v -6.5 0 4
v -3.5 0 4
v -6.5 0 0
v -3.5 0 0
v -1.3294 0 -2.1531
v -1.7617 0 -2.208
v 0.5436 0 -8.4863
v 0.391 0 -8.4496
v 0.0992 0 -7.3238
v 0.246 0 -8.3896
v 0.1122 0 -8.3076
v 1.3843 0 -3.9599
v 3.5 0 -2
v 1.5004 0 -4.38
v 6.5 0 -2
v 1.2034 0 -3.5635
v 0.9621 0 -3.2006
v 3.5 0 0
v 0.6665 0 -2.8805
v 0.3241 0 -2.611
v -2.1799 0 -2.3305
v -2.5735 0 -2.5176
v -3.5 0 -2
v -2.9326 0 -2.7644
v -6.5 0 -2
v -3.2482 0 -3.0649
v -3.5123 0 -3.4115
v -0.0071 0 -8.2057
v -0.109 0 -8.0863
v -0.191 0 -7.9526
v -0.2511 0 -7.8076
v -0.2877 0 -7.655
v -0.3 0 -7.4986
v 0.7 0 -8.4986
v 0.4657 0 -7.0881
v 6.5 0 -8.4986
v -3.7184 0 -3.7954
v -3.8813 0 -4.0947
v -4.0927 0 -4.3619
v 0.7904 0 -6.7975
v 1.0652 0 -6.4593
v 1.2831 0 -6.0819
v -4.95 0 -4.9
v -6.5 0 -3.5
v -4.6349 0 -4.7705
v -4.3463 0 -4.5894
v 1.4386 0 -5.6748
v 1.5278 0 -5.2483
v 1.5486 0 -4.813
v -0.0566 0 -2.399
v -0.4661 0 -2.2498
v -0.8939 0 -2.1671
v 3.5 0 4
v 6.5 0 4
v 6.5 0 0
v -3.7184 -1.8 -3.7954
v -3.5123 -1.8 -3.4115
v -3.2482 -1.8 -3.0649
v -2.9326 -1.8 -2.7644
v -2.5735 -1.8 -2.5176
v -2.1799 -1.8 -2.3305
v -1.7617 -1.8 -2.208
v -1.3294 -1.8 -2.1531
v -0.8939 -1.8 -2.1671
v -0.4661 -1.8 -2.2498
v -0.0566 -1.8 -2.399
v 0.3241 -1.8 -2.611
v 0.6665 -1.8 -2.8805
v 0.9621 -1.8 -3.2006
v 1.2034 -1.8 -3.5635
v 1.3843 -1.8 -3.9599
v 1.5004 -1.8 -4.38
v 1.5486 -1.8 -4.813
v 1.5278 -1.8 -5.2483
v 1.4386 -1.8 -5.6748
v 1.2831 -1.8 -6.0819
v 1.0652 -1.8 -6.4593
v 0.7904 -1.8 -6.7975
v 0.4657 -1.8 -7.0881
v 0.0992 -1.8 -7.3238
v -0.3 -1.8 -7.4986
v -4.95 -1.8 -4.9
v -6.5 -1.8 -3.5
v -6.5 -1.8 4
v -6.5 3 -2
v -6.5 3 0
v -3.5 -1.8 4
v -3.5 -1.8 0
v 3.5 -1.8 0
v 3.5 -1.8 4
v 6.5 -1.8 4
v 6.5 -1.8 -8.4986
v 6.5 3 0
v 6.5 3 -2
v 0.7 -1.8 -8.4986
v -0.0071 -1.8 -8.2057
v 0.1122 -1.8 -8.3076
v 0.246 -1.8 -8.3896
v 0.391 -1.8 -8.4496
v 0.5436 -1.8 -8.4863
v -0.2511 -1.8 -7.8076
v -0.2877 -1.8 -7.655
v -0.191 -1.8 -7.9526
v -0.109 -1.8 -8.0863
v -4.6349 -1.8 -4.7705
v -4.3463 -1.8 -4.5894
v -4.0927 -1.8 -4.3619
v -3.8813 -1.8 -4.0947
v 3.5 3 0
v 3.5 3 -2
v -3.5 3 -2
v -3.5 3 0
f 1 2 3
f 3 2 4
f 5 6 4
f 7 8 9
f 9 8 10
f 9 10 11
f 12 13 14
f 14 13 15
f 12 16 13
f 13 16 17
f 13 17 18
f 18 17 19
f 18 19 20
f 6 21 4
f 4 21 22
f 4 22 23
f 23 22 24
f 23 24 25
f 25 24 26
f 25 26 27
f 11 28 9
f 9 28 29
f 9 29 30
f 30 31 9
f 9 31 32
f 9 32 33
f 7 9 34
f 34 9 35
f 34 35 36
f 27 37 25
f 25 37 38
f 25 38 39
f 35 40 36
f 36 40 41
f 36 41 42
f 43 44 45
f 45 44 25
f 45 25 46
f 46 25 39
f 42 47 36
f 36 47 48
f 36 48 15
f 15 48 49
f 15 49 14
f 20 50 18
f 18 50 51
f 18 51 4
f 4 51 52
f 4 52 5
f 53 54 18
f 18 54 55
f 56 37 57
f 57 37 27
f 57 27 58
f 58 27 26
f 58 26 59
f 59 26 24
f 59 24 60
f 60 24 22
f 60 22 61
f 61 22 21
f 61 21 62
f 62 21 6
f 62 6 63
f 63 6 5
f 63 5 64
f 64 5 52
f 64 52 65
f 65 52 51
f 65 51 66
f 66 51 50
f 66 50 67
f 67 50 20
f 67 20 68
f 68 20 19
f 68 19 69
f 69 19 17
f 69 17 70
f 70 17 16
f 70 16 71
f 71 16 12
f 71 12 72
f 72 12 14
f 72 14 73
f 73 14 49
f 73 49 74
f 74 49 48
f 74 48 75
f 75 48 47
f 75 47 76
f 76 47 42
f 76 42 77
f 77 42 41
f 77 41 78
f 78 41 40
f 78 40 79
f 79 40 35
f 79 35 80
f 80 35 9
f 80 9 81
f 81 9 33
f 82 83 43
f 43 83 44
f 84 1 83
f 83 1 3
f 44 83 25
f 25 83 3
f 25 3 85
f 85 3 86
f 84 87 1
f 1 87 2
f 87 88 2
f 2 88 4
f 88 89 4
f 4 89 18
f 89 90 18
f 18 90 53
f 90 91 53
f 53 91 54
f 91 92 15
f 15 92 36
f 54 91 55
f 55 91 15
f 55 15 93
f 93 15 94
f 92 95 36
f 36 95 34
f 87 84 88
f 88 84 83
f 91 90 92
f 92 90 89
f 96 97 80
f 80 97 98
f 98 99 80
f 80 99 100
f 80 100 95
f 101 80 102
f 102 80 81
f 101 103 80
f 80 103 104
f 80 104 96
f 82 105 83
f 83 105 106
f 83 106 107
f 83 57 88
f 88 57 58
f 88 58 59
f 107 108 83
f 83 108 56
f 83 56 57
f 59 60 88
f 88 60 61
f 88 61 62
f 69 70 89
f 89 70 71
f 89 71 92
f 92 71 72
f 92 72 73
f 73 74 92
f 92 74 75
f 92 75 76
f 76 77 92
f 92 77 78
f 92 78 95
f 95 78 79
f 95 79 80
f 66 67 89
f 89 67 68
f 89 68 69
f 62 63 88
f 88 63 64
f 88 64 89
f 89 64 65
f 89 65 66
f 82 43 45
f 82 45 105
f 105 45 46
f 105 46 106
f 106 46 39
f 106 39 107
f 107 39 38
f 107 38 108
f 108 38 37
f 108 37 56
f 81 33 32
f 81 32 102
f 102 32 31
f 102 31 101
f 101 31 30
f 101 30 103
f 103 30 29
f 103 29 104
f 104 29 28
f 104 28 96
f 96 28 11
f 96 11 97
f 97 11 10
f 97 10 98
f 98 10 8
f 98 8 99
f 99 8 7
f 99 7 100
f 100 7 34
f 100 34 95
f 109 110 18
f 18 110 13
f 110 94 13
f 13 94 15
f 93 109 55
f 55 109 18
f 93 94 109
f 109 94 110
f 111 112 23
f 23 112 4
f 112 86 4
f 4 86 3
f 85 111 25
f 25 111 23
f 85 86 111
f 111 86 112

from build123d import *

# Parameters (mm, degrees)
BOSS_EXTRUDE1_DEPTH = 1.8
FILLET1_R           = 2
FILLET3_R           = 1
SKETCH2_W           = 3
SKETCH2_H           = 2
BOSS_EXTRUDE2_DEPTH = 3


# Some blends are built 0.0001 mm under size
with BuildPart() as part:
    # Sketch1 → Boss-Extrude1 (new body)
    with BuildSketch(Plane(origin=(0, 0, 0), x_dir=(1, 0, 0), z_dir=(0, 1, 0))):
        with BuildLine():
            Line((6.5, 2.5), (6.5, 0))
            Line((6.5, 0), (6.5, -4))
            Line((6.5, -4), (3.5, -4))
            Line((3.5, -4), (3.5, 0))
            Line((3.5, 0), (-3.5, 0))
            Line((-3.5, 0), (-3.5, -4))
            Line((-3.5, -4), (-6.5, -4))
            Line((-6.5, -4), (-6.5, 0))
            Line((-6.5, 0), (-6.5, 2.5))
            Line((-6.5, 2.5), (-6.5, 3.5))
            Line((-6.5, 3.5), (-4.95, 4.9))
            Line((-4.95, 4.9), (-3.95, 4.9))
            ThreePointArc((-3.95, 4.9), (-1.2, 2.15), (1.55, 4.9))
            ThreePointArc((1.55, 4.9), (1.040256682, 6.494913791), (-0.3, 7.498557292))
            Line((-0.3, 7.498557292), (-0.3, 8.498557292))
            Line((-0.3, 8.498557292), (6.5, 8.498557292))
            Line((6.5, 8.498557292), (6.5, 4.9))
            Line((6.5, 4.9), (6.5, 2.5))
        make_face()
    extrude(amount=BOSS_EXTRUDE1_DEPTH)

    # Fillet1
    # the kernel refuses this fillet: 2 mm, written as the material it takes off along each edge
    with BuildSketch(Plane(origin=(-3.95, -2.821440468, -4.9), x_dir=(0.20519567041703113, 0, 0.9787209698591858), z_dir=(0, 1, 0))) as fillet1_piece_1:
        with BuildLine():
            CenterArc((1.538967528, -1.95744194), FILLET1_R, 101.840953646, 48.860489585)
            Line((-0.20519567, -0.97872097), (-0.240078934, -0.95914655))
            ThreePointArc((-0.240078934, -0.95914655), (-0.141746674, -0.481152658), (-0.039148839, 0.008207827))
            Line((-0.039148839, 0.008207827), (0.008207827, 0.039148839))
            ThreePointArc((0.008207827, 0.039148839), (0.564288094, -0.018517333), (1.12036836, 0.039148839))
            Line((1.12036836, 0.039148839), (1.128576187, 0))
        make_face()
    extrude(amount=7.442880936, mode=Mode.SUBTRACT)

    # Fillet3
    fillet3_edges = [part.edges().sort_by_distance(p)[0] for p in [
        (-0.3, 0.9, -8.498557292),
    ]]
    fillet(fillet3_edges, radius=FILLET3_R - 0.0001)  # a hair under: the kernel refuses the full size

    # Sketch2 → Boss-Extrude2 (add)
    with BuildSketch(Plane.XZ):
        with Locations((5, -1)):
            Rectangle(SKETCH2_W, SKETCH2_H)
        with Locations((-5, -1)):
            Rectangle(SKETCH2_W, SKETCH2_H)
    extrude(amount=BOSS_EXTRUDE2_DEPTH)


with BuildPart() as body_2:
    # Mirror3: mirrored copy
    add(part.part.mirror(Plane(origin=(0, 0, 0), x_dir=(0, 0, 1), z_dir=(0, -1, 0))))


solid = body_2.part
